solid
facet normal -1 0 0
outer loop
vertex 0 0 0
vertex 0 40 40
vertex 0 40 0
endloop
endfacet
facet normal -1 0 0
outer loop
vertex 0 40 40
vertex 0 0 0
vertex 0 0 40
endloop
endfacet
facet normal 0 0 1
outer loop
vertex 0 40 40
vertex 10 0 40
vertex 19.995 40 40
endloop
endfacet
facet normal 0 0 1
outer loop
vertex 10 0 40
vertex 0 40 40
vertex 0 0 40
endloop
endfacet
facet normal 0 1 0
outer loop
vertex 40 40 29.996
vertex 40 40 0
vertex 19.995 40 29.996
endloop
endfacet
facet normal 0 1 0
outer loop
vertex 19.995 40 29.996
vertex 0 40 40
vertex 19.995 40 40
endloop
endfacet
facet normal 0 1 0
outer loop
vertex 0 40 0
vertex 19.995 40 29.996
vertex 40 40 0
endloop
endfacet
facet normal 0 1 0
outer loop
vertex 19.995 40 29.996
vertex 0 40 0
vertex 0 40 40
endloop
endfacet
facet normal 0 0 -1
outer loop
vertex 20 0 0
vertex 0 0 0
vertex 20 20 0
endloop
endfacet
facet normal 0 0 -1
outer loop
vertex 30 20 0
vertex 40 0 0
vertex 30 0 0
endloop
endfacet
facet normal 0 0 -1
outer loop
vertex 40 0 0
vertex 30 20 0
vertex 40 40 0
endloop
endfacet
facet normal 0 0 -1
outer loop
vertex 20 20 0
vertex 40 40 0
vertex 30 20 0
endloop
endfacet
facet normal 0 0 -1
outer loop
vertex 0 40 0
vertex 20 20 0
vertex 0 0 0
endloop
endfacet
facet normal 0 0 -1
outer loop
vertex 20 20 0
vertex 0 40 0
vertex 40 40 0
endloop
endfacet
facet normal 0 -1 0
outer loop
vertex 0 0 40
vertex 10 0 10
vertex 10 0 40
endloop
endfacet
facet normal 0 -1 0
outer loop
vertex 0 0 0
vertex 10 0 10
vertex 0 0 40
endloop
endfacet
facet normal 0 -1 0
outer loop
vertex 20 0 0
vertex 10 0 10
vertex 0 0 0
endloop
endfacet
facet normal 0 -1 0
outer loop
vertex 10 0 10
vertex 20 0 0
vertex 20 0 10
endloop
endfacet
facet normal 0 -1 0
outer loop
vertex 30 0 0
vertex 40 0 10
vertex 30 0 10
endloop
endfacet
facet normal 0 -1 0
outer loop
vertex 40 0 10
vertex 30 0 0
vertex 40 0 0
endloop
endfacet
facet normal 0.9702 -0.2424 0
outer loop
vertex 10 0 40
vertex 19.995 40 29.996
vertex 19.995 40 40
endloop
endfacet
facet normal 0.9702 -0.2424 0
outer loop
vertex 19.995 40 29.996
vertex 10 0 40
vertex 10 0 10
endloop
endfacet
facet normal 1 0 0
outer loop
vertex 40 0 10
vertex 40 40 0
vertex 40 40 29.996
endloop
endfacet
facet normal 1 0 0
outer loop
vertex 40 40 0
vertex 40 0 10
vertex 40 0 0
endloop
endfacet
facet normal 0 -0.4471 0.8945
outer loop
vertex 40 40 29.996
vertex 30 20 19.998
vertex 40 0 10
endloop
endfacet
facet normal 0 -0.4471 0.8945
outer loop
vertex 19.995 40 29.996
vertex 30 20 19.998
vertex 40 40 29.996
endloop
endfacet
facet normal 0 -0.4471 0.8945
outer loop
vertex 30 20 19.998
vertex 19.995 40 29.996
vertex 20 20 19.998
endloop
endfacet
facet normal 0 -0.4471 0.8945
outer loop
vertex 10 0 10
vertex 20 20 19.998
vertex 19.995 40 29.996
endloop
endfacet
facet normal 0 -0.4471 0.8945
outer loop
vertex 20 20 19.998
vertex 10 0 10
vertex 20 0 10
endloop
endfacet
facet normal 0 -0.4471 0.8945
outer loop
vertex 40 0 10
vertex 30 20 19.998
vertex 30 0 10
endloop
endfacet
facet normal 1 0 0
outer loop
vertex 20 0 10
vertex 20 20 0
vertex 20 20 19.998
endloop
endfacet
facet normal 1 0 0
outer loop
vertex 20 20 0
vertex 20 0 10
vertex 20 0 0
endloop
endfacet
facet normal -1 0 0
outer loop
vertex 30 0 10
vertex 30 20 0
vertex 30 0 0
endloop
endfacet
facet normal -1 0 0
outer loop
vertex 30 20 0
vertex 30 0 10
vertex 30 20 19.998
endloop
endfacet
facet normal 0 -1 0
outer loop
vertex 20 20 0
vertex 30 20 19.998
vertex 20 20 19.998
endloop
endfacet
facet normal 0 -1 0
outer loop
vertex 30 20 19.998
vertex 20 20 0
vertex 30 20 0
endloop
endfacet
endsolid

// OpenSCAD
difference(){
union(){
difference(){ 
cube([40,40,30]);
    translate([0, 0, 10])
 rotate([26.56, 0, 0])   
cube([40,50,30]);
}
difference(){      
cube([20,40,40]);
translate([10, 0, 0])
rotate([0, 0, -14.03])
cube([20,50,40]);
  }
  }
  translate([20, 0, 0])

cube([10,20,40]);
  }

/*
translate([10, 20, 20])
cube([20,10,20]);

 translat
  e([30, 20, 20])
cube([10,10,10]);

   // Plano inclinado 2
  translate([30, 20, 30]) 
  difference(){
   cube([10,10,10]);  
      rotate([45, 0, 0])
  cube([10,30,10]);  
  }
   
   // Plano inclinado 1
  translate([10, 0, 20]) 
  difference(){
   cube([10,20,20]);  
      rotate([45, 0, 0])
  cube([10,30,20]);  
  }
  
  
cube([10,40,40]);
   translate([0, 30, 0]) 
  cube([40,10,40]);  
difference(){
difference(){
cube([40,40,20]);
translate([30, 0, 0])
cube([10,10,20]); 
}
   translate([30, 0, 10]) 
rotate([0, -45, 0])
  cube([10,10,20]);  
}


/*
   translate([20, 0, 10]) 
  cube([10,10,10]); 

difference(){
   translate([30, 0, 10]) 
  cube([10,30,30]);  
translate([30, 0, 10])
rotate([45, 0, 0])
cube([10,50,30]);
}
difference(){
   translate([20, 10, 10]) 
  cube([10,30,30]);  
translate([20, 10, 10])
rotate([56.3, 0, 0])
cube([10,50,30]);
}

difference(){
   translate([10, 20, 10]) 
  cube([10,10,30]);  
translate([10, 20, 10])
rotate([71.56, 0, 0])
cube([10,50,30]);
}

difference(){
difference(){
translate([10, 10, 0])
cube([30,30,40]);
translate([10, 10, 10])
rotate([56.3, 0, 0])
cube([30,50,40]);
}
translate([20, 10, 20])
cube([10,30,40]);
}
cube([20,40,20]);
difference(){
translate([20, 0, 0])
cube([20,40,20]);
 translate([20, 0, 0])
    rotate([45, 0, 0])
cube([20,40,20]);   
}

// cubo con plano doble inclinado
translate([20, 40, 40])
  rotate([180, 0, 270])
    difference() {
      cube([20, 20, 20], center=false);

      mirror([0,0,1]){
        rotate([35, 45, 0]){
          color([1,0.8,0]) {
            cube([28.2, 28.2, 28.2], center=false);
          }
        }
      }
    }
    


    */
  
